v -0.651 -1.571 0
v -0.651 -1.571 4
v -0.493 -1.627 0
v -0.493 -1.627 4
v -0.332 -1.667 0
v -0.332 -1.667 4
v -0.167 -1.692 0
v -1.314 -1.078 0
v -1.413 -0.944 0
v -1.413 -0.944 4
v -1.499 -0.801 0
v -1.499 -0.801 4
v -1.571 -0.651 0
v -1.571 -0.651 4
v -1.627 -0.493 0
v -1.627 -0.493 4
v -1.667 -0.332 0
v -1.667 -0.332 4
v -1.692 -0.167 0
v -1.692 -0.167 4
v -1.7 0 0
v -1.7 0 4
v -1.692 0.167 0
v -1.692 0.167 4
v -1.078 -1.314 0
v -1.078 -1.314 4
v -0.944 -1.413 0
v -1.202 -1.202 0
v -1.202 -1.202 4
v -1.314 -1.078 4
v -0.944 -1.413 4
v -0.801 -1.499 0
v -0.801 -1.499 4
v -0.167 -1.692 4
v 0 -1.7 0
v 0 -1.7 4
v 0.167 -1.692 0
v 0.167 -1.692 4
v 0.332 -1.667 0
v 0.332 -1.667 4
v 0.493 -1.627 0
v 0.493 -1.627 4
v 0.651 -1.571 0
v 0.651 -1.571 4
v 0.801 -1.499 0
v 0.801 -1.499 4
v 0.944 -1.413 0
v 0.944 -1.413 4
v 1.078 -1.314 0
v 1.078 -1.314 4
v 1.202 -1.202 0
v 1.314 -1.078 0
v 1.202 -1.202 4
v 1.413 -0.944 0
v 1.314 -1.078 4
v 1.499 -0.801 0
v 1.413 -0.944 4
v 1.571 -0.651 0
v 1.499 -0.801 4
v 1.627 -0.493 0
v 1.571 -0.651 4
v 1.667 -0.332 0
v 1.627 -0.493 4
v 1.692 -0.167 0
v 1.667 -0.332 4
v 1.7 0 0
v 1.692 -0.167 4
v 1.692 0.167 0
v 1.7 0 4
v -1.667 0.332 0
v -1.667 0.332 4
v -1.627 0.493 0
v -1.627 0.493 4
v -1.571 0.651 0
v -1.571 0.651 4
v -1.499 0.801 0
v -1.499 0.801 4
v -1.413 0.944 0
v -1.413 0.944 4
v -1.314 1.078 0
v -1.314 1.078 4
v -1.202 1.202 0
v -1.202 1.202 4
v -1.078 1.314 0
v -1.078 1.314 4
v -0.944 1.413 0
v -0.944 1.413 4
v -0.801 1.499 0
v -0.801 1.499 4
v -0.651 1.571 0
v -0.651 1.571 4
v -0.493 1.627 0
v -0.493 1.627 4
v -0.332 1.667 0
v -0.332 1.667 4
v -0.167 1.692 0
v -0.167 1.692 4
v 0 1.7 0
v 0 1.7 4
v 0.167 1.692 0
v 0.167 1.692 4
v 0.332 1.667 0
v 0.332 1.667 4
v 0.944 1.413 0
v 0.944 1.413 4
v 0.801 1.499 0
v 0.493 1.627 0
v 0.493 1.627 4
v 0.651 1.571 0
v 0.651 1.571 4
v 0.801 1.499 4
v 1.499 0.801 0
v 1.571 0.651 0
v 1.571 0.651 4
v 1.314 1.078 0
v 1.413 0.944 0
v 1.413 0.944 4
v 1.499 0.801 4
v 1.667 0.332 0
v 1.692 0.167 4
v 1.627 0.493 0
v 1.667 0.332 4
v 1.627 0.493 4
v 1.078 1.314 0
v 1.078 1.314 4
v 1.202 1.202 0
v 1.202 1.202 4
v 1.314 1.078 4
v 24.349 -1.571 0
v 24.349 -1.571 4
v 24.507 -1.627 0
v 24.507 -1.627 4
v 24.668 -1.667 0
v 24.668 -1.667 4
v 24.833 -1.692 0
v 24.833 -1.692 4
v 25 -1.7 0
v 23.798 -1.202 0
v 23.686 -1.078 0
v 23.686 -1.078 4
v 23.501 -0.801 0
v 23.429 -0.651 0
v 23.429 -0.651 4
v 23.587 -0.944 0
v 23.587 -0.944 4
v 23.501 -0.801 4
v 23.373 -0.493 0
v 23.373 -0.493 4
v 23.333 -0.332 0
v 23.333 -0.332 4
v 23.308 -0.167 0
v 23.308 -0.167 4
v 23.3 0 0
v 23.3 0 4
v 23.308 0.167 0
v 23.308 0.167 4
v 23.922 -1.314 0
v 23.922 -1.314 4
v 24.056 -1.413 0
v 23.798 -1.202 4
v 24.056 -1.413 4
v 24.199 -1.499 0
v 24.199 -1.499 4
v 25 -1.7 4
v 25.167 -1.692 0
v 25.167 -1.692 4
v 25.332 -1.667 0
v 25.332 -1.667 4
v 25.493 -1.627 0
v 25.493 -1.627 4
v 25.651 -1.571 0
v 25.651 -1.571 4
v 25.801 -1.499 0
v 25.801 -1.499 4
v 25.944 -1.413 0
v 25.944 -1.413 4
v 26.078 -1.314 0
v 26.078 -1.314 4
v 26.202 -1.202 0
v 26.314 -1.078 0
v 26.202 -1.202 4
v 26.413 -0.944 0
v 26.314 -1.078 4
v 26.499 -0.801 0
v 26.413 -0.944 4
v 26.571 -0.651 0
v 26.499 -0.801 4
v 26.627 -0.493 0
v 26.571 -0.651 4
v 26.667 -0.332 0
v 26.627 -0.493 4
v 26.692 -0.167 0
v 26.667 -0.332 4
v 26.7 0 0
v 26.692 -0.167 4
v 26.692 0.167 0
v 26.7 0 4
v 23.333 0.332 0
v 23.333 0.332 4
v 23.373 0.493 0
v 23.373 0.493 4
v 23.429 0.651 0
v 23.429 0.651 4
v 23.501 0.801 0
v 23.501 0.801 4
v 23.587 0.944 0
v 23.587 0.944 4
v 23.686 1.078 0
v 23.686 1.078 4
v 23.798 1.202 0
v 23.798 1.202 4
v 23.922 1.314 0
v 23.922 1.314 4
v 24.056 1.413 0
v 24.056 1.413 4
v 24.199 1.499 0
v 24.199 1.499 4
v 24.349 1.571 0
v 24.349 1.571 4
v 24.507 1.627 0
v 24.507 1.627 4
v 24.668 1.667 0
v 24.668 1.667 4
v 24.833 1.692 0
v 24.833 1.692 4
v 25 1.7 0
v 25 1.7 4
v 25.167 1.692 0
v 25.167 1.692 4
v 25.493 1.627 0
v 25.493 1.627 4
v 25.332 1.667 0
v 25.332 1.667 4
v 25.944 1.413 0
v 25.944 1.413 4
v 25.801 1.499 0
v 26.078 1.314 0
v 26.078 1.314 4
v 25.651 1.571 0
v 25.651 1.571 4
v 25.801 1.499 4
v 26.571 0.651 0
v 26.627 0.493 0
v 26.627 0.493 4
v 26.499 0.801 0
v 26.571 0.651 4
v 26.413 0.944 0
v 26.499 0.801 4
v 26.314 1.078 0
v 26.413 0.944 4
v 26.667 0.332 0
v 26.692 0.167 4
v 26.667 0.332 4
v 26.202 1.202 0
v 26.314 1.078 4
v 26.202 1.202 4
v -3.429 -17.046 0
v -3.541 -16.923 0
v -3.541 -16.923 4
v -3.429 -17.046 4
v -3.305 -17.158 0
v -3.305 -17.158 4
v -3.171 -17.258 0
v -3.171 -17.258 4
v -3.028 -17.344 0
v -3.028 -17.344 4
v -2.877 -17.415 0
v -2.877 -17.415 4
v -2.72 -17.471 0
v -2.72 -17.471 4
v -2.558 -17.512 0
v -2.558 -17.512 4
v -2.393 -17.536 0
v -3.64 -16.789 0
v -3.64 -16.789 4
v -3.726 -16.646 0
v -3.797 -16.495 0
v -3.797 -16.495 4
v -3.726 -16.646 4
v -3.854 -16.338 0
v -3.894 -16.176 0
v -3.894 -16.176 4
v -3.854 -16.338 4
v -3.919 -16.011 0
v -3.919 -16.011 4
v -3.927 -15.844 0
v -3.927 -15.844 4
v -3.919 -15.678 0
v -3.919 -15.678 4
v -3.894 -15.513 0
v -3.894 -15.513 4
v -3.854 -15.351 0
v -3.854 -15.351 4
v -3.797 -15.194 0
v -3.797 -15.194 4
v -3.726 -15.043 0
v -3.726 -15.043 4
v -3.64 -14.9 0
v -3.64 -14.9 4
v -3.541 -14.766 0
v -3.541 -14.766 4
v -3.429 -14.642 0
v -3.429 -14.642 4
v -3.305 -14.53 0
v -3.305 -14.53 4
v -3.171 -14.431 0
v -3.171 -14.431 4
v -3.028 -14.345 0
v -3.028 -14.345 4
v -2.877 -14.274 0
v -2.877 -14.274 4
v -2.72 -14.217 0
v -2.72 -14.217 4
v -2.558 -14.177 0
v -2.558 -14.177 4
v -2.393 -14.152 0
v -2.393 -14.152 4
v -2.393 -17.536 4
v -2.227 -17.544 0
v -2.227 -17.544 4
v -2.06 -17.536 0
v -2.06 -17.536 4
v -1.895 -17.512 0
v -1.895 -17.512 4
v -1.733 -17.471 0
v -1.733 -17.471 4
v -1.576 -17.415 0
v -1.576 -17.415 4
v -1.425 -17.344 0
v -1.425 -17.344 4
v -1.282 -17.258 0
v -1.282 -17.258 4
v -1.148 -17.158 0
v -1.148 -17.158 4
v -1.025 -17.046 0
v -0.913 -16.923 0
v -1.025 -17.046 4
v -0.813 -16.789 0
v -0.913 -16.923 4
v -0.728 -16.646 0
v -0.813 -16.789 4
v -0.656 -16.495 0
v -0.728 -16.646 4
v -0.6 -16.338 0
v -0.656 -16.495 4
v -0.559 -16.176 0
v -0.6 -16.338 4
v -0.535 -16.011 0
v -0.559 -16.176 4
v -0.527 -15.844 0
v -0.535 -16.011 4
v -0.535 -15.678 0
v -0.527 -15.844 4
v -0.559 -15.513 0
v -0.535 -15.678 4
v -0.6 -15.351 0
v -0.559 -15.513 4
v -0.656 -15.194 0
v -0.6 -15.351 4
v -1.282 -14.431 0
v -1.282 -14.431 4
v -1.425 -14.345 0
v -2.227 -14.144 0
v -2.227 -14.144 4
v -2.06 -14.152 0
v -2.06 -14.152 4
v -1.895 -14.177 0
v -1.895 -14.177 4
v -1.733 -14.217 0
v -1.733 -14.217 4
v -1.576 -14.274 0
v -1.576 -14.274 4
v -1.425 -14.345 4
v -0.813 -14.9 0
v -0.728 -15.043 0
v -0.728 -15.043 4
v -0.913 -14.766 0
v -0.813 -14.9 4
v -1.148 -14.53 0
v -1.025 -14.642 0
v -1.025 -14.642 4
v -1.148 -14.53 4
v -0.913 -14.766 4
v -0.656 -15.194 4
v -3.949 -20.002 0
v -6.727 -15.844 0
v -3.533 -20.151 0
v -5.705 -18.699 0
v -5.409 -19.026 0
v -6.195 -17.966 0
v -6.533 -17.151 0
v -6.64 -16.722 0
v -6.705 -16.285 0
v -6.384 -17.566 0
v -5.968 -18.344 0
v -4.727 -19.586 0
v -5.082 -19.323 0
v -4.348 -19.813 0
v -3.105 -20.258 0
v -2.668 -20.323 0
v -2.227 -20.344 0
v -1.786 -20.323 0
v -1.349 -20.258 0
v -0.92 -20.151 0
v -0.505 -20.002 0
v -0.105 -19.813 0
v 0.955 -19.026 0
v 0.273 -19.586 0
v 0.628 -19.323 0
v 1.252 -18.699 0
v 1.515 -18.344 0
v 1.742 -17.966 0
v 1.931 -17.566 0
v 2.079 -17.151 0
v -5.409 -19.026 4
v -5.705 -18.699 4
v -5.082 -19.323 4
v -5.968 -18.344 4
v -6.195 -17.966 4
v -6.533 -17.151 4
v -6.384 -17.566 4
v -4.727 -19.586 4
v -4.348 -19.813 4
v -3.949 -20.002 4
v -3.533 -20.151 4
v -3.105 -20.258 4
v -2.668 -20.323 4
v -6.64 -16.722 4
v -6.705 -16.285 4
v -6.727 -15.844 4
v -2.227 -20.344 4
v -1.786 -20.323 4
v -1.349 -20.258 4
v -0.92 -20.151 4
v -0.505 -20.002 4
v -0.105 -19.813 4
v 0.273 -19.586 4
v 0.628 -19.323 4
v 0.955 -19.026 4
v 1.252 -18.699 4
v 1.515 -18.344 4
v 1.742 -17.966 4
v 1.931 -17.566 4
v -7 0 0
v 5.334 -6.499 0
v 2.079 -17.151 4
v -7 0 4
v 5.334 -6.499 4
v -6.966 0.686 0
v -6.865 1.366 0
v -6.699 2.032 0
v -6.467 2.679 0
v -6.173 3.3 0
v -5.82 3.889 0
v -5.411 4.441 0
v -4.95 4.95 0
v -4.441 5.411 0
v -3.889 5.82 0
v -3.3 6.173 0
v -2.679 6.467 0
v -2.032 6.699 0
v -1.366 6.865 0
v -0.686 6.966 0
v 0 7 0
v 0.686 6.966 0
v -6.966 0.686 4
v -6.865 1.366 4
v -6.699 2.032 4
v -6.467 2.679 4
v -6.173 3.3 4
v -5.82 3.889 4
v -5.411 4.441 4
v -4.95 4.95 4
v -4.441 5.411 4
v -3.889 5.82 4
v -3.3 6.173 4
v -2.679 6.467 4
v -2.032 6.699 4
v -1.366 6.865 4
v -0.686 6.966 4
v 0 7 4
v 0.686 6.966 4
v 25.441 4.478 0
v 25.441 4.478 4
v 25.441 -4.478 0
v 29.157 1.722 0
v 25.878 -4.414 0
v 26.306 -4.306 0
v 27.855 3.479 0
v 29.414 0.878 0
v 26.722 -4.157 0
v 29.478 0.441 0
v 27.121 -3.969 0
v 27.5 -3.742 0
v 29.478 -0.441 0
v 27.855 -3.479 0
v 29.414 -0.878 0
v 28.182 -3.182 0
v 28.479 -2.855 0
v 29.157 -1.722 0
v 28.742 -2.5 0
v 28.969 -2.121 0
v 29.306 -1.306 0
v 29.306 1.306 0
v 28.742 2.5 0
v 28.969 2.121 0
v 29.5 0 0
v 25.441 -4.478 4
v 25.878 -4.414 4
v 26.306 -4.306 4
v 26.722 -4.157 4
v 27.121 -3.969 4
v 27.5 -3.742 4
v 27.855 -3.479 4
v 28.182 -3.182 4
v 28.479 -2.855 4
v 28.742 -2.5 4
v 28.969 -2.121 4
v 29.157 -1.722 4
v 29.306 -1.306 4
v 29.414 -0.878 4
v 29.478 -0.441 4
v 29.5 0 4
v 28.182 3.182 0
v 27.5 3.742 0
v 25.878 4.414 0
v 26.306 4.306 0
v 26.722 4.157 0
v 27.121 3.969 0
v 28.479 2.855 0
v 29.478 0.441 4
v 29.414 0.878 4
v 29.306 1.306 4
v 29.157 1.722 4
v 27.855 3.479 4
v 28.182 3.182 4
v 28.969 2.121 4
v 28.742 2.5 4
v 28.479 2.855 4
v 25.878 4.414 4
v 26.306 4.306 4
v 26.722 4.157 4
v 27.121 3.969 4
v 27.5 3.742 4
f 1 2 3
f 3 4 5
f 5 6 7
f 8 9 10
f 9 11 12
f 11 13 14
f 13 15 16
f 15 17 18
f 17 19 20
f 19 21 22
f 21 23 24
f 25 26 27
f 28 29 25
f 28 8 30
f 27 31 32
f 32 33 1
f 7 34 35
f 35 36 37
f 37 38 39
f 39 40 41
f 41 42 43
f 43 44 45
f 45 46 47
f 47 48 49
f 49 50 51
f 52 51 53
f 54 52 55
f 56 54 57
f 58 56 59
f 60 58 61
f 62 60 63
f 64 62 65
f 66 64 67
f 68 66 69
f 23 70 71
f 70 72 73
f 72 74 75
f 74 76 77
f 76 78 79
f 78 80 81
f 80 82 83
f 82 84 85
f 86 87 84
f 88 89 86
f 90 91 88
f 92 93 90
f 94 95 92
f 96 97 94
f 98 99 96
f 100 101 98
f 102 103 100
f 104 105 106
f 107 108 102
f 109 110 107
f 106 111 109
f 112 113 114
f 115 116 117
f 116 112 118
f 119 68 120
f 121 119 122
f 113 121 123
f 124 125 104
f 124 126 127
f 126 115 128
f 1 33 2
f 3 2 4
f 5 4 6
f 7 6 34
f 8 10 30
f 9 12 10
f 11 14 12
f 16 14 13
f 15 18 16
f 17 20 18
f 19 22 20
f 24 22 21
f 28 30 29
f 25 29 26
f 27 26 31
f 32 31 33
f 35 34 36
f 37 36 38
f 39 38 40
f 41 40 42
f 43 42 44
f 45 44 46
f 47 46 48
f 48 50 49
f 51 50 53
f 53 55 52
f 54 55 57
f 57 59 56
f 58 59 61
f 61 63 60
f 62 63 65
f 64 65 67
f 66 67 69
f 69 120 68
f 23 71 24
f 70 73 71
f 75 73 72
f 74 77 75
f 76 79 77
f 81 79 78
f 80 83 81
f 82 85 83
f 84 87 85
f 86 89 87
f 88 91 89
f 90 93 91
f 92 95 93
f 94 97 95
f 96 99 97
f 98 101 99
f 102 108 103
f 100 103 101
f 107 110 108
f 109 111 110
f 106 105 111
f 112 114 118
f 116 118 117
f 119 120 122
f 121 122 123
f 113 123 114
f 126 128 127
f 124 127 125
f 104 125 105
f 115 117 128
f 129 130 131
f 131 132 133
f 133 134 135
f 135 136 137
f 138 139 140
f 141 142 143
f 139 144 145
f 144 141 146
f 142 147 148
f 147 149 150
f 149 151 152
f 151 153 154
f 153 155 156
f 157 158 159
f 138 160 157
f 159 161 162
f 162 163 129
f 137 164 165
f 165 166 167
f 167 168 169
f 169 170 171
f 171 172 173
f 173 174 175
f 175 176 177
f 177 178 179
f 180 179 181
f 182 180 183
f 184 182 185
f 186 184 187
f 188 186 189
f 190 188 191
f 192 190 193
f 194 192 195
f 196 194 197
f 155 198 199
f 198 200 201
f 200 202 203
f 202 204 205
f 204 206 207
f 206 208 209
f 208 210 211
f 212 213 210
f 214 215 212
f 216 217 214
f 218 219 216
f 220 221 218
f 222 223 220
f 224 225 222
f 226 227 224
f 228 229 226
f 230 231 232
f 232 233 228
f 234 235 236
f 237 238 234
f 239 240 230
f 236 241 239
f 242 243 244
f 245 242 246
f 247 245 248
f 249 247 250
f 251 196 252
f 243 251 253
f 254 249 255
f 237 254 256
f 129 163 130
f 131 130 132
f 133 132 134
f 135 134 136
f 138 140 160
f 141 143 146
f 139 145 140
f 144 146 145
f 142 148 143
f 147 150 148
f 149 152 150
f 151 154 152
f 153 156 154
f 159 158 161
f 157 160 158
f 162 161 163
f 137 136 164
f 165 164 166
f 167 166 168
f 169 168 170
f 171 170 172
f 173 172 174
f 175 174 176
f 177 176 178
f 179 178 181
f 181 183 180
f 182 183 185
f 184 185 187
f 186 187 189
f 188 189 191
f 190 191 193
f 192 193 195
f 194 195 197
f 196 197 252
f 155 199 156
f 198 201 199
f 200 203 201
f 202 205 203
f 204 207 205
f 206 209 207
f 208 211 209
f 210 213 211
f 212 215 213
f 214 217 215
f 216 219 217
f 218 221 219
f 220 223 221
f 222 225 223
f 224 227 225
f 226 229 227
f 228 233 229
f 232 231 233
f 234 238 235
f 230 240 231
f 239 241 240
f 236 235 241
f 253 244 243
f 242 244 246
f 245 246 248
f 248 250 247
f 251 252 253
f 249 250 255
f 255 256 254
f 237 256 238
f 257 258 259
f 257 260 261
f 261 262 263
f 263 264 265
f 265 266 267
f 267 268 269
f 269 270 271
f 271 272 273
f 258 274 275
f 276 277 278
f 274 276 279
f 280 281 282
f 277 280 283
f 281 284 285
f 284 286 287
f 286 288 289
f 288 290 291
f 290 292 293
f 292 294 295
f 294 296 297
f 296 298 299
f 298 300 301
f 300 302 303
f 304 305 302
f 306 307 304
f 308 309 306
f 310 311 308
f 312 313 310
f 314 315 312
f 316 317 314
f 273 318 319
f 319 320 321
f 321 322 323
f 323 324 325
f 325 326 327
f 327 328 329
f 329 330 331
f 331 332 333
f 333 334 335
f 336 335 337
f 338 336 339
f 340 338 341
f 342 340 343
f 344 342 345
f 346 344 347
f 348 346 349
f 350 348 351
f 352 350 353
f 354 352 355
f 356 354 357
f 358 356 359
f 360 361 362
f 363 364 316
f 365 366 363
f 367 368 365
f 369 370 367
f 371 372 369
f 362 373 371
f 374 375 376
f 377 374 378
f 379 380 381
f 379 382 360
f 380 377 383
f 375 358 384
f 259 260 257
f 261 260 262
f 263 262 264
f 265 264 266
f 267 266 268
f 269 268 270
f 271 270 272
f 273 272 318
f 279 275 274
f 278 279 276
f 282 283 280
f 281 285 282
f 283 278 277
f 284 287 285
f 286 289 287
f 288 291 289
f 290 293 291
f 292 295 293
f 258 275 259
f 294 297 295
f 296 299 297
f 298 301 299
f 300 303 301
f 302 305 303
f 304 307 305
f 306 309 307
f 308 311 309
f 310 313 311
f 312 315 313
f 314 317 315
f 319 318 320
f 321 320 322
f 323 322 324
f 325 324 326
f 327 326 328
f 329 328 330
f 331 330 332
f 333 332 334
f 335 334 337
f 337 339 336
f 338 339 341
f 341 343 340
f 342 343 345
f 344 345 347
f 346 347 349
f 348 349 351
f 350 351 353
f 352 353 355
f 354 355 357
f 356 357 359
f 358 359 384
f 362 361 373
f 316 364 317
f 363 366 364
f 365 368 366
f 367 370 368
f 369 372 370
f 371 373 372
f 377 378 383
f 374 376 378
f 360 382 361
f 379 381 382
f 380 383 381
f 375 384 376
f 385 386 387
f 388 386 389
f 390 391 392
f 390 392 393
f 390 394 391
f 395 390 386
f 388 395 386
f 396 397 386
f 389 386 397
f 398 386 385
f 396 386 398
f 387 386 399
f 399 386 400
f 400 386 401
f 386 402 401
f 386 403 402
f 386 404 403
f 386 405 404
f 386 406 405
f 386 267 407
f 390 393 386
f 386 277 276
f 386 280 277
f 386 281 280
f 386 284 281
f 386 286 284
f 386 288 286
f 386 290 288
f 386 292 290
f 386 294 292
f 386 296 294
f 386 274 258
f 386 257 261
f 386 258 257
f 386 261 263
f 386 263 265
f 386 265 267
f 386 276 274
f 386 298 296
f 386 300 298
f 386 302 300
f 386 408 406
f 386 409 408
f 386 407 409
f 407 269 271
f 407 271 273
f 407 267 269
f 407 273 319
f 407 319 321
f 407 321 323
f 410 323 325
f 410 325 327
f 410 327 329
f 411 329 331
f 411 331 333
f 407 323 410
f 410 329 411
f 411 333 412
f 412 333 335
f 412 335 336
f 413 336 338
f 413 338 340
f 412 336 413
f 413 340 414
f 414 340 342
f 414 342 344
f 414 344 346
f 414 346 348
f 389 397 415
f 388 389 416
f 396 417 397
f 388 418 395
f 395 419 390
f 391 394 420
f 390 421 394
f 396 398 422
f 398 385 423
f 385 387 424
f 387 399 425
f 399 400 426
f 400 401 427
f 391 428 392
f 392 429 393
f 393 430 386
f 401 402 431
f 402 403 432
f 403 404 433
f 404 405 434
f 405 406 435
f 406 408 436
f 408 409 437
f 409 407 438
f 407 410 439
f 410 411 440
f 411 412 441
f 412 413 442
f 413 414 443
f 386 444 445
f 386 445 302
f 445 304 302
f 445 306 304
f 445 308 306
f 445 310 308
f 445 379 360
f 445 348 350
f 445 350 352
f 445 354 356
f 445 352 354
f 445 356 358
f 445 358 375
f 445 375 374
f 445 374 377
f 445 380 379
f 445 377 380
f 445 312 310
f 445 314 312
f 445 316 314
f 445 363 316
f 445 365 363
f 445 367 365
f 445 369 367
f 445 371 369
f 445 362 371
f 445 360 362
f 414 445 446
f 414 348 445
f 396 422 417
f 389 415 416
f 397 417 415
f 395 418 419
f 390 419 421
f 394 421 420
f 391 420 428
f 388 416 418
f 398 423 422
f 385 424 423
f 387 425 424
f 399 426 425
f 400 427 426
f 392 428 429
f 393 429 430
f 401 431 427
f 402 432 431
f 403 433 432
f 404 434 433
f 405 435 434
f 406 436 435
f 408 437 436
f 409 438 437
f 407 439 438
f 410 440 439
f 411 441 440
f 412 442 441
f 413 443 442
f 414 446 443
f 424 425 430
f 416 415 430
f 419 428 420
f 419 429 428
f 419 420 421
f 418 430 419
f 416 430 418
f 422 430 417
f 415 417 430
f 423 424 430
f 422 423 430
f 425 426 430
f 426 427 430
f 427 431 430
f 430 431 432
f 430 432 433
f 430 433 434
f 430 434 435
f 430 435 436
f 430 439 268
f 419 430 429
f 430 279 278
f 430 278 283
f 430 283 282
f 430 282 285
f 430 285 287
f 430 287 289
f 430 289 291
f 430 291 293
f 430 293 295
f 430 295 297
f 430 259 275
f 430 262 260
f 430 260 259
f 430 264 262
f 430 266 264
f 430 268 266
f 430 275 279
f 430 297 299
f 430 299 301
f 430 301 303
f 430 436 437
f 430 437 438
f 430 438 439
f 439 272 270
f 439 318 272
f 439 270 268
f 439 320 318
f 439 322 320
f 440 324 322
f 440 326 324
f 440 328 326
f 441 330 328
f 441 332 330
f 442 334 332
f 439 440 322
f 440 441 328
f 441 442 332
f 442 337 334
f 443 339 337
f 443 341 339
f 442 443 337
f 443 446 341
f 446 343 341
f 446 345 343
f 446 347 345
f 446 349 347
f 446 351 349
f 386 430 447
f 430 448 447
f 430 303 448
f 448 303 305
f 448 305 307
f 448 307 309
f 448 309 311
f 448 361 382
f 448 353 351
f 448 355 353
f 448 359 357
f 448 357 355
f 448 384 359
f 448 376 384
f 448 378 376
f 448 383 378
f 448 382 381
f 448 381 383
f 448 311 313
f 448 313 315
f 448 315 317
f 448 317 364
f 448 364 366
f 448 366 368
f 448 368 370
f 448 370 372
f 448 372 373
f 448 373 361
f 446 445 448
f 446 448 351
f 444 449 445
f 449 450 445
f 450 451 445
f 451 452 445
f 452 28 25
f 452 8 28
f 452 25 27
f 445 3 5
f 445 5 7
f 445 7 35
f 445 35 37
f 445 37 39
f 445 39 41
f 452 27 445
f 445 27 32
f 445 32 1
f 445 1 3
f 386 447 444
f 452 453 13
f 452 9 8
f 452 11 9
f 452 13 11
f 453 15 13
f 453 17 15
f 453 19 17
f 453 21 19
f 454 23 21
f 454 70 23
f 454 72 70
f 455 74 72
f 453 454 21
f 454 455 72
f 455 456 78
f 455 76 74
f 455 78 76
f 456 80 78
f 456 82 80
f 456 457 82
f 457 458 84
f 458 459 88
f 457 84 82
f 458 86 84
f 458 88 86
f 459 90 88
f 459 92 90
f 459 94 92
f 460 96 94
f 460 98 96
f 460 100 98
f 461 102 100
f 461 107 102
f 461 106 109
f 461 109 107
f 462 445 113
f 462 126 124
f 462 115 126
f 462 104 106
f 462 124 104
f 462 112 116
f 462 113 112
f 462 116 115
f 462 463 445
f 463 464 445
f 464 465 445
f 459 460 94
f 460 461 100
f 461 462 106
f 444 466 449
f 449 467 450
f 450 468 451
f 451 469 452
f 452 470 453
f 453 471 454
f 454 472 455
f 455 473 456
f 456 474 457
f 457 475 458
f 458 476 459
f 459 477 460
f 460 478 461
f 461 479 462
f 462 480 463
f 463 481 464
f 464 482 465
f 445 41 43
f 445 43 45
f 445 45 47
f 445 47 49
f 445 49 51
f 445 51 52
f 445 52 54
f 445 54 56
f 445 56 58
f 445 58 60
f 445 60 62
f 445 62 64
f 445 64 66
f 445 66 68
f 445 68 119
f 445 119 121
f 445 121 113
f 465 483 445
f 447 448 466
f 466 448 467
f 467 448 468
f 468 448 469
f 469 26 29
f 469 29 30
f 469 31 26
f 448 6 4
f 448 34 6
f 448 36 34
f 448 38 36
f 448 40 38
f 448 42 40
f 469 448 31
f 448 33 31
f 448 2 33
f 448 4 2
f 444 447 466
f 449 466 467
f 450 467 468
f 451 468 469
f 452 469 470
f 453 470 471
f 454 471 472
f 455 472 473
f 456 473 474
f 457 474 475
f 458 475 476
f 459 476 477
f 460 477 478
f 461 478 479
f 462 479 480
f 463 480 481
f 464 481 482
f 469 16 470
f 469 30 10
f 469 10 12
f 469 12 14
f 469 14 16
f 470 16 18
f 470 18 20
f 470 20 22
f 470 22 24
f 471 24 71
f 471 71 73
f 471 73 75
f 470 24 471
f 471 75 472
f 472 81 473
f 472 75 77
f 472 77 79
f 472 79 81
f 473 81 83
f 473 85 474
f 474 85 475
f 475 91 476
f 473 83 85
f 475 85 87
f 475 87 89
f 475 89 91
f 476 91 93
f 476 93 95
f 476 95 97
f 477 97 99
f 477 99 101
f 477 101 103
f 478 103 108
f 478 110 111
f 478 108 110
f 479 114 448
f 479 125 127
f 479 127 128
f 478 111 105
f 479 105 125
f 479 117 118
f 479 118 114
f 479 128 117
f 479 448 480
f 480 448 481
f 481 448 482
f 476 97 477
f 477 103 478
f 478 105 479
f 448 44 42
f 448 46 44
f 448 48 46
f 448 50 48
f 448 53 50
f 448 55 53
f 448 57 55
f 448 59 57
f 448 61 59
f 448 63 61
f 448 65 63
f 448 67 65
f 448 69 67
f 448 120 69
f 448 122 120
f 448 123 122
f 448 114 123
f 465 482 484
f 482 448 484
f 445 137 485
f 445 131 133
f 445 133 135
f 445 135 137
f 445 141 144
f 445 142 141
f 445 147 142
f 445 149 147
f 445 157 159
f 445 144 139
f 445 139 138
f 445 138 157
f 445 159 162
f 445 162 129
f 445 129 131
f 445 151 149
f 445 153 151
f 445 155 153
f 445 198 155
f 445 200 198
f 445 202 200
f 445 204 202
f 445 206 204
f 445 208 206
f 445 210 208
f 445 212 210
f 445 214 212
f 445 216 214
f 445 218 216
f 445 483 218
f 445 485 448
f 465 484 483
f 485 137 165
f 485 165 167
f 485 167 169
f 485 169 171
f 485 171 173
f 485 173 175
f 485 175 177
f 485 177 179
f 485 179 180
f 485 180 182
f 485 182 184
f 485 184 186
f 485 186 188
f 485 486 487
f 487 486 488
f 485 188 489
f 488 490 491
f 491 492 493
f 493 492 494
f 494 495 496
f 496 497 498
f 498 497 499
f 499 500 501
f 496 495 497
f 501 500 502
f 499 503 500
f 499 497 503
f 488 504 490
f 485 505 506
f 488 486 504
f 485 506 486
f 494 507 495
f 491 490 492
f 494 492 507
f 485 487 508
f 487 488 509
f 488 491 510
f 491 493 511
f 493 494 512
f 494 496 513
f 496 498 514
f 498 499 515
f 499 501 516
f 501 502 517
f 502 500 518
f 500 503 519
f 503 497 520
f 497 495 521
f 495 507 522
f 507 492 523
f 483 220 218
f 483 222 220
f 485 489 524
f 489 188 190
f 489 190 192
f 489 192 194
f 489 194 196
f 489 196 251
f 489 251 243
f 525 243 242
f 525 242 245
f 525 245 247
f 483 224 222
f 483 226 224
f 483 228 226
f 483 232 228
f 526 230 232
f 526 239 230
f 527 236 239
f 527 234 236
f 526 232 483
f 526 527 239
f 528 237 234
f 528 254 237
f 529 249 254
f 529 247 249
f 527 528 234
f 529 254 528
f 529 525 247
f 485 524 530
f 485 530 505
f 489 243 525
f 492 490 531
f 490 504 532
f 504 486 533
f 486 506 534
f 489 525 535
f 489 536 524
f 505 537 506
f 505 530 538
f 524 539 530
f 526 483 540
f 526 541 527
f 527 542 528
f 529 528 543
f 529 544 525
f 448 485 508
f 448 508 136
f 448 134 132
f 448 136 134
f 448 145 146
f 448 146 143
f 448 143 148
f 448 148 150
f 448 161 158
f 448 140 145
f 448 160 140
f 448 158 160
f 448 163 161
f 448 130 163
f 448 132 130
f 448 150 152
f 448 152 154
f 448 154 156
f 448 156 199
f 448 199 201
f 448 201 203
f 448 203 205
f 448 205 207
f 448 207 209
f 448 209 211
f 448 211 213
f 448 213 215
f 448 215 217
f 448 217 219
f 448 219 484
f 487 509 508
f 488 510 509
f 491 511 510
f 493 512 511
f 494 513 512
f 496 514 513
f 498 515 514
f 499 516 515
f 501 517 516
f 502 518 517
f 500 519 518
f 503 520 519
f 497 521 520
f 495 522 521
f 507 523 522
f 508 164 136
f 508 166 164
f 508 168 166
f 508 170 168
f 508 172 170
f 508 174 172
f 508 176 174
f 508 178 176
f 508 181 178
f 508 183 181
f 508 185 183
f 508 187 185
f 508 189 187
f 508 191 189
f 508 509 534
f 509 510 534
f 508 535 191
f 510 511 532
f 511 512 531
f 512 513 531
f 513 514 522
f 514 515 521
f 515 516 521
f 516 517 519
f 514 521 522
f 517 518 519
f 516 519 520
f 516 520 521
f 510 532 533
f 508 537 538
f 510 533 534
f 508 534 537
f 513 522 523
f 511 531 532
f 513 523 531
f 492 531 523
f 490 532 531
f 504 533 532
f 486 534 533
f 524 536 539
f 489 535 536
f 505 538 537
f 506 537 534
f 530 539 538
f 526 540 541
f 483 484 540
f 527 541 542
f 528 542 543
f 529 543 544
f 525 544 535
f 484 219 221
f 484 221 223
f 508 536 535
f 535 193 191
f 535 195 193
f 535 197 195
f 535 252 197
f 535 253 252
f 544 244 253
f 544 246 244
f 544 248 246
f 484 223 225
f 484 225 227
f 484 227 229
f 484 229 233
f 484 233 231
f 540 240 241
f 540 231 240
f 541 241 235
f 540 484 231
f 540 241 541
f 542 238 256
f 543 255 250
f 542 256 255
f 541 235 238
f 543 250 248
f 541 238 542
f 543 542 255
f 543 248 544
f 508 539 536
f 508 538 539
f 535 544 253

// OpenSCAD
// PROVISIONAL two-arm bell crank. Print flat; use an M3 central pivot.
include <parameters.scad>
$fn = 64;
assert(stage2_crank_center_d > stage2_pivot_hole_d + 6);
assert(stage2_rod_width > stage2_pivot_hole_d + 4);

module bell_crank() {
    difference() {
        linear_extrude(height = bell_crank_thickness)
            union() {
                hull() {
                    circle(d = stage2_crank_center_d);
                    translate([bell_upper_arm_radius, 0])
                        circle(d = stage2_rod_width);
                }
                hull() {
                    circle(d = stage2_crank_center_d);
                    translate([bell_lower_arm_radius * cos(bell_arm_included_angle),
                               bell_lower_arm_radius * sin(bell_arm_included_angle)])
                        circle(d = stage2_rod_width);
                }
            }
        for (point = [[0,0], [bell_upper_arm_radius,0],
                      [bell_lower_arm_radius * cos(bell_arm_included_angle),
                       bell_lower_arm_radius * sin(bell_arm_included_angle)]])
            translate([point[0], point[1], -0.1])
                cylinder(d = stage2_pivot_hole_d,
                         h = bell_crank_thickness + 0.2);
    }
}

bell_crank();
